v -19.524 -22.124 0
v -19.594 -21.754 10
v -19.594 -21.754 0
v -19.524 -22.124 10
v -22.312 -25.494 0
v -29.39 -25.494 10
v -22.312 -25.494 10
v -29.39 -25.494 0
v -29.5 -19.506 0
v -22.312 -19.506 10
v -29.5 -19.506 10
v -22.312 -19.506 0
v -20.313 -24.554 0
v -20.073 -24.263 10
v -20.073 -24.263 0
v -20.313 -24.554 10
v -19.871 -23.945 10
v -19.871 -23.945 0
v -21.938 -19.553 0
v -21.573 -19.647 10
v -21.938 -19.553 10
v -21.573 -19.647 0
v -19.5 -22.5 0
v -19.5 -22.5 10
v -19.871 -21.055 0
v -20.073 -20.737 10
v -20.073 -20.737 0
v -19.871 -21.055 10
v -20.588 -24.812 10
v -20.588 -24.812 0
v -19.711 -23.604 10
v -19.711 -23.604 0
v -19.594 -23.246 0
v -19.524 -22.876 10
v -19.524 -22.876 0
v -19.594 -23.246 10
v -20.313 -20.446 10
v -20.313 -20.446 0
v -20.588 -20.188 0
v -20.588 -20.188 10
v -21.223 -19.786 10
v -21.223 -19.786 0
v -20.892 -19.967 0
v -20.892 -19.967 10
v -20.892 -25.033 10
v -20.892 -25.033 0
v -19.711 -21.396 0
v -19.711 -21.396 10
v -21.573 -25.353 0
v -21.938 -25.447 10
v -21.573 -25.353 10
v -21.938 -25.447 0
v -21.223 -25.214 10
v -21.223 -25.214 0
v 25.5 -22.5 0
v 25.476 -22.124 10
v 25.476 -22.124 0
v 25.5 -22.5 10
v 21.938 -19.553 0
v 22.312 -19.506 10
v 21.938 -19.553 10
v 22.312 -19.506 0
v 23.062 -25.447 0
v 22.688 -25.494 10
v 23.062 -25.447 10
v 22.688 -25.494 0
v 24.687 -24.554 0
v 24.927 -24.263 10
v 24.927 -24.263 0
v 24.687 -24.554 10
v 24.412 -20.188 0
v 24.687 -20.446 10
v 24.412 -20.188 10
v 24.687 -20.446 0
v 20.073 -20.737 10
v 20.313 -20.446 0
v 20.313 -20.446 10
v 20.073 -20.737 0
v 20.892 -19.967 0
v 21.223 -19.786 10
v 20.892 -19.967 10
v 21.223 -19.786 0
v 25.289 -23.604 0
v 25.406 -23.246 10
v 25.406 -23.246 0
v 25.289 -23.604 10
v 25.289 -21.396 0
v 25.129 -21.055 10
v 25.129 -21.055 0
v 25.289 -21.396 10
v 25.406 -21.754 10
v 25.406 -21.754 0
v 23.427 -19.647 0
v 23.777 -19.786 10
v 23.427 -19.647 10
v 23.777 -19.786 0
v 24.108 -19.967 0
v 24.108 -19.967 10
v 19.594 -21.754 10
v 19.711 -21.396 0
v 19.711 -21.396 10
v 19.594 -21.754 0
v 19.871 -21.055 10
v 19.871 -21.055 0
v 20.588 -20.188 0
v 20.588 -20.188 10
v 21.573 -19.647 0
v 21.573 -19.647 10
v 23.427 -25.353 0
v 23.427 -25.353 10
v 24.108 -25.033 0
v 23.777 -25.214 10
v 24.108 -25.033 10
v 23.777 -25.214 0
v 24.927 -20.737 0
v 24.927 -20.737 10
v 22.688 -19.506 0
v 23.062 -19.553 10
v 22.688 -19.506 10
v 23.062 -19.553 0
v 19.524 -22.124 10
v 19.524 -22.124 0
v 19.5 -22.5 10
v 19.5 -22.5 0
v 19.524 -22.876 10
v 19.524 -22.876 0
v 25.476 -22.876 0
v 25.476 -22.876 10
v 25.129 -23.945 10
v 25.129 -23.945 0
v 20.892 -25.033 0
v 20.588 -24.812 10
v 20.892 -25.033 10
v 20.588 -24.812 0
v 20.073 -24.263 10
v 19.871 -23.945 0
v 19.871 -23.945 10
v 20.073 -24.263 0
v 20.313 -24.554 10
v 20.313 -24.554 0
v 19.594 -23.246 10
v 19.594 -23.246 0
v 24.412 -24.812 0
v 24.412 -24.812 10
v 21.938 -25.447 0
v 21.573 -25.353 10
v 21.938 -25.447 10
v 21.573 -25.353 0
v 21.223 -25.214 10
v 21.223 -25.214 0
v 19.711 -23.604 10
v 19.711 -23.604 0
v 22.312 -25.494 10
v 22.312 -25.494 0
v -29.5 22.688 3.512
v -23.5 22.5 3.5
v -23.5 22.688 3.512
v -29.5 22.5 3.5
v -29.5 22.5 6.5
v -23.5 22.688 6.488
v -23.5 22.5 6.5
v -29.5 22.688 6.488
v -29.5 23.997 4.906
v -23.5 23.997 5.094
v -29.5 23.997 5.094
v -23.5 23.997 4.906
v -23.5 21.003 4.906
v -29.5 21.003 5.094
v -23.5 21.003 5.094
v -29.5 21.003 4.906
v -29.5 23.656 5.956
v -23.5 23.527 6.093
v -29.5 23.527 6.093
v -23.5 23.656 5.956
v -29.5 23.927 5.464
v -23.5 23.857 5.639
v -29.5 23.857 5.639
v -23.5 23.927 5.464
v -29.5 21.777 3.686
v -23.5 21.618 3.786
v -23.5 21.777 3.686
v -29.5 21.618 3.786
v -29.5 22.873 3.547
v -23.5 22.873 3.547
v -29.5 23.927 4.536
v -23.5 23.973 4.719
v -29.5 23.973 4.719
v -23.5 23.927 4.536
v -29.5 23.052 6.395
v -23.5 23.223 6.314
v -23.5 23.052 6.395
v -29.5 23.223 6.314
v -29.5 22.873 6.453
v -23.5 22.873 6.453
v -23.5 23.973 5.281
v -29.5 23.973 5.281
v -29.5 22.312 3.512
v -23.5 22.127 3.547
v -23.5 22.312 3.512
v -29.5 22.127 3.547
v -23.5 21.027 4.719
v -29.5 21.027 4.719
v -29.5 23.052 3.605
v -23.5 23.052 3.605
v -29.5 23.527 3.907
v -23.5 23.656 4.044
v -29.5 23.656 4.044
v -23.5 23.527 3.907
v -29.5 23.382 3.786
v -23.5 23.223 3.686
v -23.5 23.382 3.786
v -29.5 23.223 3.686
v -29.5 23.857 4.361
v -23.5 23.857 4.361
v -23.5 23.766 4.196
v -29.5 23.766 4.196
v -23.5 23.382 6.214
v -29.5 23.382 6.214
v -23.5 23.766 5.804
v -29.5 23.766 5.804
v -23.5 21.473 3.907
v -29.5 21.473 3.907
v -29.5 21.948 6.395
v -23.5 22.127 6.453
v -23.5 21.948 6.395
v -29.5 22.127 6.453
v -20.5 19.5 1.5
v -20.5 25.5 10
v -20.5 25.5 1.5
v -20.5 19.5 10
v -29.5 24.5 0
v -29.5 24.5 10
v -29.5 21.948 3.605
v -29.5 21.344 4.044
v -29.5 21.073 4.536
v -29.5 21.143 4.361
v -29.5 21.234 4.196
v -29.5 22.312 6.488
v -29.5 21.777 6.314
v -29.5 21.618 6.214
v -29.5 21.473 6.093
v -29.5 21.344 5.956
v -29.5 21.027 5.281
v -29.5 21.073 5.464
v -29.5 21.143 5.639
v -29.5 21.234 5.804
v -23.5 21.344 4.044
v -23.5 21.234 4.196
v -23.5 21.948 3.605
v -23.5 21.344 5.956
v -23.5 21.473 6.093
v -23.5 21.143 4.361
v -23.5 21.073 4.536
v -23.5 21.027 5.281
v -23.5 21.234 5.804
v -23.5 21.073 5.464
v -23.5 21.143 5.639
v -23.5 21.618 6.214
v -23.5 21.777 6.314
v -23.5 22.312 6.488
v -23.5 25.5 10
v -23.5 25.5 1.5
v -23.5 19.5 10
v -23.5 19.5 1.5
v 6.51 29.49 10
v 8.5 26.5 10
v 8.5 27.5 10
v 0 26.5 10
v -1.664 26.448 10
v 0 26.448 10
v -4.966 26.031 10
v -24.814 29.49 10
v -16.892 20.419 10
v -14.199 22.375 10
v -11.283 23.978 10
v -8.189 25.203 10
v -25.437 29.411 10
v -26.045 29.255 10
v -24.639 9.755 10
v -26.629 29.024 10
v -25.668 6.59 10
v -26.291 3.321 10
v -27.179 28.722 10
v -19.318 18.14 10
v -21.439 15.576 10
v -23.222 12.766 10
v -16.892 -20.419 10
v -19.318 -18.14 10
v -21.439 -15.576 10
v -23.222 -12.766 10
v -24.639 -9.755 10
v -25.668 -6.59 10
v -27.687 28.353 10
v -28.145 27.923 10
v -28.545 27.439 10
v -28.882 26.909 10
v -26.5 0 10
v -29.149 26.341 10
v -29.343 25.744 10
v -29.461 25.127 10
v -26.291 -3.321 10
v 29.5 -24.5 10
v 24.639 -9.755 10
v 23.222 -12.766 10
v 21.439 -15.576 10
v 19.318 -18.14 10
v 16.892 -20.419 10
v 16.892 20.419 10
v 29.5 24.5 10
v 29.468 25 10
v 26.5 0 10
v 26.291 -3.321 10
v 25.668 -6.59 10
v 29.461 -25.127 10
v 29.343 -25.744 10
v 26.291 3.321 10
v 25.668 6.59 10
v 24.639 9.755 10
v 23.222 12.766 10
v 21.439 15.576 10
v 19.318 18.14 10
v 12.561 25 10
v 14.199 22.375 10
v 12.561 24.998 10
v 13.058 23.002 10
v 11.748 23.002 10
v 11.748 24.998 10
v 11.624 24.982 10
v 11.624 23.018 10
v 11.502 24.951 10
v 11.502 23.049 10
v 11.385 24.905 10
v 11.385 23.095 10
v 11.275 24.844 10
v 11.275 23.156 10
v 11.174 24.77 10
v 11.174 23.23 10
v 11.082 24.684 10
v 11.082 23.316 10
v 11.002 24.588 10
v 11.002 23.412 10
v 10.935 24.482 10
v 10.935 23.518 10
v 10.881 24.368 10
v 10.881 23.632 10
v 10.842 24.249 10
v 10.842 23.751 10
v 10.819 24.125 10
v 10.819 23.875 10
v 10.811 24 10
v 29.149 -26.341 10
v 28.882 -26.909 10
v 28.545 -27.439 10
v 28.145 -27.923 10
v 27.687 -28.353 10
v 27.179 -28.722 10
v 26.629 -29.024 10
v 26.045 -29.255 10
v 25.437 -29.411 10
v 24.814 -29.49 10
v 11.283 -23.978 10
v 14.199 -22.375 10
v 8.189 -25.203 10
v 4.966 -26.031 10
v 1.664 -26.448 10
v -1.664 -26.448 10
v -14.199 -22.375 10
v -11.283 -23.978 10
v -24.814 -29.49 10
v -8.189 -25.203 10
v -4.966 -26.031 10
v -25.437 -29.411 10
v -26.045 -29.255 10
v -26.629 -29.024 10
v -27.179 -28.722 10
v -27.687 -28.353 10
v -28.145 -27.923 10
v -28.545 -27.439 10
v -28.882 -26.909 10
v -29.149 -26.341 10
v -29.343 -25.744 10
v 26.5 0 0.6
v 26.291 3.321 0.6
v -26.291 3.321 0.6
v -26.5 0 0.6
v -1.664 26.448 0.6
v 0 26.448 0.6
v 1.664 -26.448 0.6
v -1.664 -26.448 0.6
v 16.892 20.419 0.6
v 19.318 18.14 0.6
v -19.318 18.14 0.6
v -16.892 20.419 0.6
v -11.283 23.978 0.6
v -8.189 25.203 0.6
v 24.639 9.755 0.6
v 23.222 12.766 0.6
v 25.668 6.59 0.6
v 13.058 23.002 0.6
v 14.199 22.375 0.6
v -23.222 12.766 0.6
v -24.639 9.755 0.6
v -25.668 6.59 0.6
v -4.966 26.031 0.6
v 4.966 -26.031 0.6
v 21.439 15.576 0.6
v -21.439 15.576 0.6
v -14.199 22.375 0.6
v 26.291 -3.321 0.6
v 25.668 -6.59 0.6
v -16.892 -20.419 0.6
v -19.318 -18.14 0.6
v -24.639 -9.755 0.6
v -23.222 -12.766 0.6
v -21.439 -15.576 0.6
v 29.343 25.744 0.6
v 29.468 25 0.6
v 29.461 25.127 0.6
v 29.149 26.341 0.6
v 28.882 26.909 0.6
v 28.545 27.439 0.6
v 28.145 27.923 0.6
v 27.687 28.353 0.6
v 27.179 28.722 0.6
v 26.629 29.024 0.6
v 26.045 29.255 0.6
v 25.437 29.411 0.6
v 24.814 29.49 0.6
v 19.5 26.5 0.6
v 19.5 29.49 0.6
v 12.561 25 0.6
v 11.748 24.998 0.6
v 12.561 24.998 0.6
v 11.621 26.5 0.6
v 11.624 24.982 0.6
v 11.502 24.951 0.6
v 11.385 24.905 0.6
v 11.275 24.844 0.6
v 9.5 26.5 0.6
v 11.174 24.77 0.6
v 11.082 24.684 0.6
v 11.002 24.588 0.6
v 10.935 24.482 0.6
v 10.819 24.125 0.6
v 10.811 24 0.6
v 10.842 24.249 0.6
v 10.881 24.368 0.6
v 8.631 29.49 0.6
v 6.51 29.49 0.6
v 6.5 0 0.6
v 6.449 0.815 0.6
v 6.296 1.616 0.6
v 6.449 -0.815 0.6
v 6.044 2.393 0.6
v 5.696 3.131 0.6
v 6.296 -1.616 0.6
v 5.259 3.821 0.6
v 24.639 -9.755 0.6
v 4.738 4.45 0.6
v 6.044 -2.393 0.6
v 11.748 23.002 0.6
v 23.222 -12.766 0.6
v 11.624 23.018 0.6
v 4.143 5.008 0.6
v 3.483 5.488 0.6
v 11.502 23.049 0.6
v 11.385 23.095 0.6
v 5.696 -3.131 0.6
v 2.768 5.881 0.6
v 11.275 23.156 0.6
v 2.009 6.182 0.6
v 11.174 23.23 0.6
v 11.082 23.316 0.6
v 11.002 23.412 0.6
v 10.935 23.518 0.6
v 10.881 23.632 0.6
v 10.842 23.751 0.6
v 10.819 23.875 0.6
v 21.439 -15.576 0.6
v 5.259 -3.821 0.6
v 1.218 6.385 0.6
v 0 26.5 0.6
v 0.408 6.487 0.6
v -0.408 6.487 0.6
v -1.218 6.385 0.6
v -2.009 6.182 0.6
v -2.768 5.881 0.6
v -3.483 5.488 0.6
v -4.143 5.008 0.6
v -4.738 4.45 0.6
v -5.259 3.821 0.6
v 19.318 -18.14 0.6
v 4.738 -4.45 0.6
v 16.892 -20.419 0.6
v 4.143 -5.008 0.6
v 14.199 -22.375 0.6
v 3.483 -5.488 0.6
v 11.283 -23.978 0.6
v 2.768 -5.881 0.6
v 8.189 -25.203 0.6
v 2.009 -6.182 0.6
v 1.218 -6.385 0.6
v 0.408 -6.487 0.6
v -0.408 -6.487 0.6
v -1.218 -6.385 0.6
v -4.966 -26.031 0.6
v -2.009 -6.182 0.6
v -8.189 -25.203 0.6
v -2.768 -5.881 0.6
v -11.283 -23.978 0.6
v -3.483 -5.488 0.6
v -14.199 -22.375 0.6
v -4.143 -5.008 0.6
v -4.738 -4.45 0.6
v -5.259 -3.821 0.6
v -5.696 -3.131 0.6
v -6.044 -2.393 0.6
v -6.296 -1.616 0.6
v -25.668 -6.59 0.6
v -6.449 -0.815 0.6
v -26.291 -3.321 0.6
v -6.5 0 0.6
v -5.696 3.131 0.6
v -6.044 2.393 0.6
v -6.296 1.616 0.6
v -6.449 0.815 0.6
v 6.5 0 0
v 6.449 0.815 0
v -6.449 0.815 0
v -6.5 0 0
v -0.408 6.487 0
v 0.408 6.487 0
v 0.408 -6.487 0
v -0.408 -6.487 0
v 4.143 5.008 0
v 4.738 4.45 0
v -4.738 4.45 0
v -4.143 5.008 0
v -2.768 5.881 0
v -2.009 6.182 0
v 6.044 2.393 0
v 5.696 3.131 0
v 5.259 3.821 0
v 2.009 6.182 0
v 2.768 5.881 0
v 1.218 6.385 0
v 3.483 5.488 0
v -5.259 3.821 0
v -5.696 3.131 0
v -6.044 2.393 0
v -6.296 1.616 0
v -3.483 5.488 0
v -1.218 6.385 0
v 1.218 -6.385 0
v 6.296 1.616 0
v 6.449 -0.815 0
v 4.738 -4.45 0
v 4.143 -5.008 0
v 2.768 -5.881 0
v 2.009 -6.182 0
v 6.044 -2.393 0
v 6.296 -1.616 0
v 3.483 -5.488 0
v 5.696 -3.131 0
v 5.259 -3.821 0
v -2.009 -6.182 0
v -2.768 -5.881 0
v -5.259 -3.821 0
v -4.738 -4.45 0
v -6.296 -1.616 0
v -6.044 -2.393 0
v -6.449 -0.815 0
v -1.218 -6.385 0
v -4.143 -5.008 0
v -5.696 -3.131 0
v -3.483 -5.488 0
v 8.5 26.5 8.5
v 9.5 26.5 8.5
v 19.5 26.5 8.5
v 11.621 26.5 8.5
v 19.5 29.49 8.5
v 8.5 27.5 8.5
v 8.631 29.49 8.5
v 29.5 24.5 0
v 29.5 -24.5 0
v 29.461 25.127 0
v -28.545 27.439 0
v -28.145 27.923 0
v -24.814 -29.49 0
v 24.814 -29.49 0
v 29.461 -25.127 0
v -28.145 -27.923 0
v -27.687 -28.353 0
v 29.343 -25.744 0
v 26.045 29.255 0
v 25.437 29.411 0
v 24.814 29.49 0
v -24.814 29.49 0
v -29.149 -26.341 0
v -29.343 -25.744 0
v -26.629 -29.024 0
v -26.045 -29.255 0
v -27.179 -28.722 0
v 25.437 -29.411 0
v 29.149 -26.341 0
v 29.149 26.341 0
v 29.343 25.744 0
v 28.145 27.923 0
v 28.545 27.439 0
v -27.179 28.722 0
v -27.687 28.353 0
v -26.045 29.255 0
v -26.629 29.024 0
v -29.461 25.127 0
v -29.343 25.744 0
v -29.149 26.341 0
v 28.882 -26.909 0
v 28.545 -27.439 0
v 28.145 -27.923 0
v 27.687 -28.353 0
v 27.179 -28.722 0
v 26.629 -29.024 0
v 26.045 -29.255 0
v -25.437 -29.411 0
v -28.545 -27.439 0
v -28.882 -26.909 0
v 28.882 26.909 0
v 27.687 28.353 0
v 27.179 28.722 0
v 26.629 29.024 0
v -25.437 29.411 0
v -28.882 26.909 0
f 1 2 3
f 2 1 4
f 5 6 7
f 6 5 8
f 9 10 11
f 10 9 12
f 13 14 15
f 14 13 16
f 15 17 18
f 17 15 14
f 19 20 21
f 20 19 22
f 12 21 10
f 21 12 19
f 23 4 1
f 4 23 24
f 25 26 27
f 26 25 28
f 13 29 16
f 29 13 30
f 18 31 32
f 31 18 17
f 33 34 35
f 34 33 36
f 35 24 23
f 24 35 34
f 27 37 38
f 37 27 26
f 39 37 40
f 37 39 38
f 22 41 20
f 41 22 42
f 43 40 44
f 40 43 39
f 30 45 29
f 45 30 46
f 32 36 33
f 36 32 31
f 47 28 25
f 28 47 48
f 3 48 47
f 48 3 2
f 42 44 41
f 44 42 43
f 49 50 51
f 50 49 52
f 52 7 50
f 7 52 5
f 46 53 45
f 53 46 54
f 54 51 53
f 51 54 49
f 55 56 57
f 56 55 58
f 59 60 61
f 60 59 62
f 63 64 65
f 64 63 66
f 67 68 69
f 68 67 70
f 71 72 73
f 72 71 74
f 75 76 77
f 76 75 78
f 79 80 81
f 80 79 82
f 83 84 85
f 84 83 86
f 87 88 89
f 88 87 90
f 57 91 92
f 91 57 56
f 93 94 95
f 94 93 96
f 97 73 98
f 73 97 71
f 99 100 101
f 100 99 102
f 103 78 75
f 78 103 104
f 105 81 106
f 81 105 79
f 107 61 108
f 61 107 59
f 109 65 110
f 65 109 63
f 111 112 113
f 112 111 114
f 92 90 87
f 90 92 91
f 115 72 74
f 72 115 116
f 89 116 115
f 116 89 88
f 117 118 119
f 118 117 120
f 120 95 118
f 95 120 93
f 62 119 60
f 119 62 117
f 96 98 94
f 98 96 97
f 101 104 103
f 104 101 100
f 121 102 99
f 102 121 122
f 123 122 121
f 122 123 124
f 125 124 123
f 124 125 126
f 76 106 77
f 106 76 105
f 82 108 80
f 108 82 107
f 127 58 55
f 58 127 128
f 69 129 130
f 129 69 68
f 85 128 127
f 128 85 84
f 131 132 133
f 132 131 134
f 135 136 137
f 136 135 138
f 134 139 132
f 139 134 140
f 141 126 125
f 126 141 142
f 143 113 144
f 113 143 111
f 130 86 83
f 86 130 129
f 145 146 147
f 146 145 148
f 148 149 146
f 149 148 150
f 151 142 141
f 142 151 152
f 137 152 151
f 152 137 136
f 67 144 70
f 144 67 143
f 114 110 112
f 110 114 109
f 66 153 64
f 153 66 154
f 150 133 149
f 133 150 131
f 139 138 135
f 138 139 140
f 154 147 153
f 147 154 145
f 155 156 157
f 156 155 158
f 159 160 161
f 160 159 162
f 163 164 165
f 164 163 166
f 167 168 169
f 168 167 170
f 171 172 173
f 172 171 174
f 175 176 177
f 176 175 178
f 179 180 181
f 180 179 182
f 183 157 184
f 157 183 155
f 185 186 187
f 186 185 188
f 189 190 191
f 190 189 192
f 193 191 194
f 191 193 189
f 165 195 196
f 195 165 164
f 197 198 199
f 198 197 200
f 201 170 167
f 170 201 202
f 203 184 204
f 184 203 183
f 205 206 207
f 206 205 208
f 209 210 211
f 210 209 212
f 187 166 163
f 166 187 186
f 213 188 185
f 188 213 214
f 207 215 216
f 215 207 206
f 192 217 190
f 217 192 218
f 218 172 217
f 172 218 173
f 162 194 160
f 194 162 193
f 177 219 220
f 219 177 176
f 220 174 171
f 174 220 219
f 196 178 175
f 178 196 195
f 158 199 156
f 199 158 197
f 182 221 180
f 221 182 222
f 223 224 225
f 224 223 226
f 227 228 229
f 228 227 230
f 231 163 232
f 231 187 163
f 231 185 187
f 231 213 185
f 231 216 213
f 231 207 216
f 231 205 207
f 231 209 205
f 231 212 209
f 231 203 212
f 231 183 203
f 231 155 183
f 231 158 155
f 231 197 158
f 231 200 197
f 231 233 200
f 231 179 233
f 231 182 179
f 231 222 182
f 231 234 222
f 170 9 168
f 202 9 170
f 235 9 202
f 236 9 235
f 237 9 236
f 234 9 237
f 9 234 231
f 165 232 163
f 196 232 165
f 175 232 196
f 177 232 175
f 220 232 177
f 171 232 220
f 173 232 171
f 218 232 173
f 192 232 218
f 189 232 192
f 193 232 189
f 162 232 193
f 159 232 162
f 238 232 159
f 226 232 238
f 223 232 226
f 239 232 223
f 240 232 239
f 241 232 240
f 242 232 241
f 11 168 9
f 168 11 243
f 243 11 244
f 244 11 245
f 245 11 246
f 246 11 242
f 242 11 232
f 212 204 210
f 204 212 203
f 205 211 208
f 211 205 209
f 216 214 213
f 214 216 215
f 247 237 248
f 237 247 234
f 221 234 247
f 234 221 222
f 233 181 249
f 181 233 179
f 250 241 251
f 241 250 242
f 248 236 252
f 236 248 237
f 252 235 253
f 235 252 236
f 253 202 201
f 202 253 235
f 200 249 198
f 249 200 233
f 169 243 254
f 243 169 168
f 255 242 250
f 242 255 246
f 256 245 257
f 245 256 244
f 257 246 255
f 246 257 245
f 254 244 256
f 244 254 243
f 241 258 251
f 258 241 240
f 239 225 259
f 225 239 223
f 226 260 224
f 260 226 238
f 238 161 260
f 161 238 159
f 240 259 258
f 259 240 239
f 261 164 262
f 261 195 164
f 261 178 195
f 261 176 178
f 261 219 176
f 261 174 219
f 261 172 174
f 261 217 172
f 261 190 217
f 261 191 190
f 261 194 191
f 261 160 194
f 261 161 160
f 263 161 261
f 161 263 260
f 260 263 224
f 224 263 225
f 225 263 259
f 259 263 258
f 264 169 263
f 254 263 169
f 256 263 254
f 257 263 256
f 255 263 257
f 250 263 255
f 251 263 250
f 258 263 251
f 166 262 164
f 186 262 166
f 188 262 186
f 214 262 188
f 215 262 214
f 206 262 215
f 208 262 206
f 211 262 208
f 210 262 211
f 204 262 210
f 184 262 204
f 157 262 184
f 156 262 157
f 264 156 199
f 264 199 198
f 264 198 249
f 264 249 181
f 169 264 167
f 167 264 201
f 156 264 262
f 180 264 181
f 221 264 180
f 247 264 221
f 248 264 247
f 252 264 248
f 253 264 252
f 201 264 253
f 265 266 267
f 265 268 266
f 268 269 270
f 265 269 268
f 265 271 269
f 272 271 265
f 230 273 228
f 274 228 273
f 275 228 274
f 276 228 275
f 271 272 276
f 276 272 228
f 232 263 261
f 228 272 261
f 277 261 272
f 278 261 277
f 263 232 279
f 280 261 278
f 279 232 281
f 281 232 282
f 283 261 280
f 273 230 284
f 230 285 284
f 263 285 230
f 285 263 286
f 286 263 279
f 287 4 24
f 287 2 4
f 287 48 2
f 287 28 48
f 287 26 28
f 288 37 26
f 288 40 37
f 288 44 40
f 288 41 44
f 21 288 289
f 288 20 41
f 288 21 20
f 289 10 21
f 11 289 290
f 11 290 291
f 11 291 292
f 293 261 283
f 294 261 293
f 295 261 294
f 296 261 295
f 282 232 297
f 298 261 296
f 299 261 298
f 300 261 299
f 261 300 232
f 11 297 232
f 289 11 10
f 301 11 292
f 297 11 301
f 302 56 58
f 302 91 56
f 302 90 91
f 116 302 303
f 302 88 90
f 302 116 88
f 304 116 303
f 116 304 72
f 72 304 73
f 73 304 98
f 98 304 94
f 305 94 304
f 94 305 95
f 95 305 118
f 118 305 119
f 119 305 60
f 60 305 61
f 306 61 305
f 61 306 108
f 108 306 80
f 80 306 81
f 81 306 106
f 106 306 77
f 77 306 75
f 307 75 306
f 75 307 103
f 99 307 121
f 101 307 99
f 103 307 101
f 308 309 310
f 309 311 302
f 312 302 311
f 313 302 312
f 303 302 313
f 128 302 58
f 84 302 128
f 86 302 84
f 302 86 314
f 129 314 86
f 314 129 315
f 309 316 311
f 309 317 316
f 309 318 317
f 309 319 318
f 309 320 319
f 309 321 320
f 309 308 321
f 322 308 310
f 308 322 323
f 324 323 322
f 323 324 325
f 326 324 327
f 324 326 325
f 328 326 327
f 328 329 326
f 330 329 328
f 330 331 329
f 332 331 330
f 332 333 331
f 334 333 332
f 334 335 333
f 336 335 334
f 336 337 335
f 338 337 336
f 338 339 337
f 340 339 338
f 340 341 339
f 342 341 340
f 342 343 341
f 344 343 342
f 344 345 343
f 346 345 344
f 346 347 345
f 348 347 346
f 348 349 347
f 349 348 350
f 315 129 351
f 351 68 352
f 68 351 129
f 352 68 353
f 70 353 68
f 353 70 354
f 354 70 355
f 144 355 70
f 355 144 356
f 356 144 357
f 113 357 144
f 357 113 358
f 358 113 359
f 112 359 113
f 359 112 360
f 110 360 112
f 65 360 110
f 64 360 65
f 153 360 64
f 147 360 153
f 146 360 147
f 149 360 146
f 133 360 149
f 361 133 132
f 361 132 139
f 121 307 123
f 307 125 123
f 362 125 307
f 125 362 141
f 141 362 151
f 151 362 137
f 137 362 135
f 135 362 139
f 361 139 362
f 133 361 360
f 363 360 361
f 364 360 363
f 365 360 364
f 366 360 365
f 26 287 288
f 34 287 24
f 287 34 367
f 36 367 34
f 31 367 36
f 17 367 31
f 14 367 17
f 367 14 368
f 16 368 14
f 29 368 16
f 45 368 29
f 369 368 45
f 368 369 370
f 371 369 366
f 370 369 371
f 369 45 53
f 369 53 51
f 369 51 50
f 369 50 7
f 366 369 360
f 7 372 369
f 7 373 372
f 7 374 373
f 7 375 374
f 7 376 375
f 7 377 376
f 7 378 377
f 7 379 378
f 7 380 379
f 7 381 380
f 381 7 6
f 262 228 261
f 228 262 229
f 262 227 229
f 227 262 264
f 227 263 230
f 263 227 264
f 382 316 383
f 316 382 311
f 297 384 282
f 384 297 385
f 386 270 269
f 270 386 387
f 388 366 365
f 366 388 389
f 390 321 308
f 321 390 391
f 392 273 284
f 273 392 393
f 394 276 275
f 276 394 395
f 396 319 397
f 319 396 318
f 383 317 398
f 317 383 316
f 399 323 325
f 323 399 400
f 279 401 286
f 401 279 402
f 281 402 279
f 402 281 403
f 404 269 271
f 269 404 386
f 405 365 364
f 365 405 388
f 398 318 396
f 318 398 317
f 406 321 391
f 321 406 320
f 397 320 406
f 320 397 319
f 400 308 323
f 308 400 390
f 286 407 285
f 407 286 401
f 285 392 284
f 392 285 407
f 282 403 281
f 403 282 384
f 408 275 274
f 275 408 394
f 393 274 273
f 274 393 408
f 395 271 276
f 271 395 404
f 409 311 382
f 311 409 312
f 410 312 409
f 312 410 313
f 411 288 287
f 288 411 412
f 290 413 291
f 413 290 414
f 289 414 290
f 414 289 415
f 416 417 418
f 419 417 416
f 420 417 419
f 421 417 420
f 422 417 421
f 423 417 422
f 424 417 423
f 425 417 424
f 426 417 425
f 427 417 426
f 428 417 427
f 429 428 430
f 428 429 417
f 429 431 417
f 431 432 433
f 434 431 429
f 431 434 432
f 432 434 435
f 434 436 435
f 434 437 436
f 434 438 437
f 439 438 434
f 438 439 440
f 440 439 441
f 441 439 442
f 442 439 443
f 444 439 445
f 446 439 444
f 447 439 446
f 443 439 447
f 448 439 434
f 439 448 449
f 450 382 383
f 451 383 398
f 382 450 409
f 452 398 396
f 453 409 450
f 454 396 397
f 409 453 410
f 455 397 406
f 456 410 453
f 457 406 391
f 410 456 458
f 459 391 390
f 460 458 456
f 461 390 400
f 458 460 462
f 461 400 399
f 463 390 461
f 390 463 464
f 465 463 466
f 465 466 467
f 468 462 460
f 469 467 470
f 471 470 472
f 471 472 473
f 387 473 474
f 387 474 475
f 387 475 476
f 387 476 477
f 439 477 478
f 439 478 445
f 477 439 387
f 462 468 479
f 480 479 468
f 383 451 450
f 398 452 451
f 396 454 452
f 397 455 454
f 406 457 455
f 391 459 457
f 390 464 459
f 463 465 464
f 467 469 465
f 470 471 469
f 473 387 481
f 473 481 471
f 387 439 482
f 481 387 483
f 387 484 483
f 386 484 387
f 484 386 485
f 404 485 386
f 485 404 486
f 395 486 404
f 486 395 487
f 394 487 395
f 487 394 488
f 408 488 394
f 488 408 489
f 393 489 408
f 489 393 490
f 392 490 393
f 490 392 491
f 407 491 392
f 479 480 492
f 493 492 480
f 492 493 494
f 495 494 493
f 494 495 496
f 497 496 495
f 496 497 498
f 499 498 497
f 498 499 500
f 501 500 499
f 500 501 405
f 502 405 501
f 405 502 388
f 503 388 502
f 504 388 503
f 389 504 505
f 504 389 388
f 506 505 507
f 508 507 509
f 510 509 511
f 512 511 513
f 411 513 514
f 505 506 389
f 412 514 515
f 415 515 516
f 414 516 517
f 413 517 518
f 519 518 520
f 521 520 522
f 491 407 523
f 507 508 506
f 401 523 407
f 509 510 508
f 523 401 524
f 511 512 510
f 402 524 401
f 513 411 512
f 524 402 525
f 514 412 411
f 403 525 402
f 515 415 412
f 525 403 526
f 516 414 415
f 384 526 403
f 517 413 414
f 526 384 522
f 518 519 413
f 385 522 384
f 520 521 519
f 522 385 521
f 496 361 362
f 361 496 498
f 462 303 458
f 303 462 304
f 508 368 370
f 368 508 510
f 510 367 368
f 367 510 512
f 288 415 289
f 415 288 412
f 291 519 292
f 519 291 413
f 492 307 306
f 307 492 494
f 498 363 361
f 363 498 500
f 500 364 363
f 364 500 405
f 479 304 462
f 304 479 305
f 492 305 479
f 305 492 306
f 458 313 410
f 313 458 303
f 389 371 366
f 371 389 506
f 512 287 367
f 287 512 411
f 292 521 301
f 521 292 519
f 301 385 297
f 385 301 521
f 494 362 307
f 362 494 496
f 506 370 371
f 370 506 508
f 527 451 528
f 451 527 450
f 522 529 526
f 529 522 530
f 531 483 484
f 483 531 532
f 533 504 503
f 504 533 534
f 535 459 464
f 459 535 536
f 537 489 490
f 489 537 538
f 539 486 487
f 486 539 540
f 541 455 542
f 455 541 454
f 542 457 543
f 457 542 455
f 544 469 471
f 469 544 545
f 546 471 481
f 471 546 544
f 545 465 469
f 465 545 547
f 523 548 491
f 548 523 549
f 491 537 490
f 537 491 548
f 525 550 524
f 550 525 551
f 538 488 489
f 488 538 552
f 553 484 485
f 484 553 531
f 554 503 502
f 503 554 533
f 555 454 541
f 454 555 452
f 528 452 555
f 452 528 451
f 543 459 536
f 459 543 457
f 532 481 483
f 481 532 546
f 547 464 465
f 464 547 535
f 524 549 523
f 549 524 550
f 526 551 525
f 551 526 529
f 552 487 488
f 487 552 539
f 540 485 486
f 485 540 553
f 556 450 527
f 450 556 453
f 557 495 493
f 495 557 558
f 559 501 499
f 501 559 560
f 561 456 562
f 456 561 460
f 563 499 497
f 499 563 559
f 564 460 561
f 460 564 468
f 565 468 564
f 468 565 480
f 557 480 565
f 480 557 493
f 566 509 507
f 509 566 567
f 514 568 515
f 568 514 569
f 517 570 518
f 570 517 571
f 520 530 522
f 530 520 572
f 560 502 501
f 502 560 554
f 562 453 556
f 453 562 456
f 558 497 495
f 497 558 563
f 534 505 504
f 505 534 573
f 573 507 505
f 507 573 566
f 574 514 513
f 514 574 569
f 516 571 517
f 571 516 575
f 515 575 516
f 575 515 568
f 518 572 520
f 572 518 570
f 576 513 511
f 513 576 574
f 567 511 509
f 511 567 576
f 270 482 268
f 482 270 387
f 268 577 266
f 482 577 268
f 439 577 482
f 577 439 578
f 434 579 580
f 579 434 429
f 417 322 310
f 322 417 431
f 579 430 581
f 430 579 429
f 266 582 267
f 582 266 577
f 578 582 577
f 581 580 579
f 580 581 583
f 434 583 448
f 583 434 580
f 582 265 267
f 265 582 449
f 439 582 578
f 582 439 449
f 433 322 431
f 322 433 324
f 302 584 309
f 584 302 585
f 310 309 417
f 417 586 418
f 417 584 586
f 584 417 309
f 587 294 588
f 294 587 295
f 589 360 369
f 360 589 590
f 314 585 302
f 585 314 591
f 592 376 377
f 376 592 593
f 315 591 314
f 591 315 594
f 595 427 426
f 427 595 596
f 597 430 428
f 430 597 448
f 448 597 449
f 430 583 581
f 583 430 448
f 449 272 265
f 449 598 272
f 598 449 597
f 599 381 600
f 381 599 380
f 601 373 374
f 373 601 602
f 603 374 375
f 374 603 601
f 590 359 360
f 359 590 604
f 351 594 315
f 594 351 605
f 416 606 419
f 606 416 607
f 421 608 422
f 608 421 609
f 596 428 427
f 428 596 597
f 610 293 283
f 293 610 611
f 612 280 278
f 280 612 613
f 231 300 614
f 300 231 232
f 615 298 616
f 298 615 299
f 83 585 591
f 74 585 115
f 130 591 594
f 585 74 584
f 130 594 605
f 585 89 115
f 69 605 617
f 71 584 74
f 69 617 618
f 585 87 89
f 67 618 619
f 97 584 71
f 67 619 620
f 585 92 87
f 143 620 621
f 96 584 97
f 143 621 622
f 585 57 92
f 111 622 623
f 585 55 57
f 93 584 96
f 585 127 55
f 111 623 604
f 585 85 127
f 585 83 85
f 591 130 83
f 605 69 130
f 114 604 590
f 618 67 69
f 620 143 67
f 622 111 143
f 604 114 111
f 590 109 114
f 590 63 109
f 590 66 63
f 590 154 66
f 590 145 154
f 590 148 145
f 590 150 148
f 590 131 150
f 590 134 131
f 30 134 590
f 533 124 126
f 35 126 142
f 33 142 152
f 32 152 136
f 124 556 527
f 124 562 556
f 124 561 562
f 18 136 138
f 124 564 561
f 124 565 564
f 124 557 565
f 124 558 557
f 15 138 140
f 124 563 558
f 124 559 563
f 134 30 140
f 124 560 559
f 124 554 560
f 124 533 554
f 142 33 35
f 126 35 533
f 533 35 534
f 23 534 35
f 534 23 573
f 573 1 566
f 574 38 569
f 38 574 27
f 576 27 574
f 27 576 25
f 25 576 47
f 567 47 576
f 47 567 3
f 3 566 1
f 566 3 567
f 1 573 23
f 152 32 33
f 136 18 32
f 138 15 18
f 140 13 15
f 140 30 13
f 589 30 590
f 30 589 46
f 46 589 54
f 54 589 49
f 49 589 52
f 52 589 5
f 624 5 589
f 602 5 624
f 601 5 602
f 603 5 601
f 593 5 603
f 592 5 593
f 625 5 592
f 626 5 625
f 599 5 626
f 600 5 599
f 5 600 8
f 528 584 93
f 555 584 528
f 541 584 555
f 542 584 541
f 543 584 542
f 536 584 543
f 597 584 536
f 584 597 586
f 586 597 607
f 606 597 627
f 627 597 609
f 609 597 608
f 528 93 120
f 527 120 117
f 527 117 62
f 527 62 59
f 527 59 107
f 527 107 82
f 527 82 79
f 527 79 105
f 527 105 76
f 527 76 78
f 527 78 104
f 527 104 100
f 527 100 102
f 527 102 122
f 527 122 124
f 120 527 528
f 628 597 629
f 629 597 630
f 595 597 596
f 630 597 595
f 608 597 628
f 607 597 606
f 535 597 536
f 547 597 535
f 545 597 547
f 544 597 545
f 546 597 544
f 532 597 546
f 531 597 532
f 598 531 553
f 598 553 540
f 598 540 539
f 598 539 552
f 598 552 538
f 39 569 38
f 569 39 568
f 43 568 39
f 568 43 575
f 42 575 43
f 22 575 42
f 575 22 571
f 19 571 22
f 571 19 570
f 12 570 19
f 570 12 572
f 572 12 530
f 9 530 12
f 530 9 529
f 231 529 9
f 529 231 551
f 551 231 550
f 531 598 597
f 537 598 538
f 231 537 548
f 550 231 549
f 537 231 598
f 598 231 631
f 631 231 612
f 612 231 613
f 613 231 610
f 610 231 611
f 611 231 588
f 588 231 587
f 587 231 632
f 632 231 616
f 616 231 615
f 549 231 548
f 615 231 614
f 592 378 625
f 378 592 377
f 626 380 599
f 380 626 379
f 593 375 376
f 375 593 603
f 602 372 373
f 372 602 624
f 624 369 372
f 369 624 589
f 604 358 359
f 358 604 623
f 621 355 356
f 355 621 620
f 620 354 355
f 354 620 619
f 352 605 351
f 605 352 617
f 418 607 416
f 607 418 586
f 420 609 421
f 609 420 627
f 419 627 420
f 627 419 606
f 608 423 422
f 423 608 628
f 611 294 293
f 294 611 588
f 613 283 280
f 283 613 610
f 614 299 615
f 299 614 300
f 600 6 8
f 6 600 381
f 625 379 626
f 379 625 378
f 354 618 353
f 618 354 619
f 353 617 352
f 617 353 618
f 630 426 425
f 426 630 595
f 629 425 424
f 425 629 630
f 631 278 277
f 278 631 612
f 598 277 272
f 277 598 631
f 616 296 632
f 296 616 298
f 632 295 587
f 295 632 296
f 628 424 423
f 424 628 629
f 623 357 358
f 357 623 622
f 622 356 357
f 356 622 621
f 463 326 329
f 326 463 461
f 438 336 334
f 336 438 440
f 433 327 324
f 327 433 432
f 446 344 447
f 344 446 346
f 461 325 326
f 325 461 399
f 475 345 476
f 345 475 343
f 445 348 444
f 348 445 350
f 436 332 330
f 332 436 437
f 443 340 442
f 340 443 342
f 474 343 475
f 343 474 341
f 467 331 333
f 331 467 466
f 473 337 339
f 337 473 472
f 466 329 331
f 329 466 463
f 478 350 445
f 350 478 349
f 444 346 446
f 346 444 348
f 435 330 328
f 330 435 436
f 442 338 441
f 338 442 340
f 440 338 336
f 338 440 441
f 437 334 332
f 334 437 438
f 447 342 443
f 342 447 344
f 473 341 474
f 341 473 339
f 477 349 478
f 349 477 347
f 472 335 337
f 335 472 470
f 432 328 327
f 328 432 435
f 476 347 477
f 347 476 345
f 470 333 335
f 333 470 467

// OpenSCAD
$fn = 50;


union() {
	difference() {
		union() {
			translate(v = [0, 0, 0]) {
				rotate(a = [0, 0, 0]) {
					hull() {
						translate(v = [-24.5000000000, 24.5000000000, 0]) {
							rotate(a = [0, 0, 0]) {
								translate(v = [0, 0, 0]) {
									rotate(a = [0, 0, 0]) {
										cylinder(h = 10, r = 5);
									}
								}
							}
						}
						translate(v = [24.5000000000, 24.5000000000, 0]) {
							rotate(a = [0, 0, 0]) {
								translate(v = [0, 0, 0]) {
									rotate(a = [0, 0, 0]) {
										cylinder(h = 10, r = 5);
									}
								}
							}
						}
						translate(v = [-24.5000000000, -24.5000000000, 0]) {
							rotate(a = [0, 0, 0]) {
								translate(v = [0, 0, 0]) {
									rotate(a = [0, 0, 0]) {
										cylinder(h = 10, r = 5);
									}
								}
							}
						}
						translate(v = [24.5000000000, -24.5000000000, 0]) {
							rotate(a = [0, 0, 0]) {
								translate(v = [0, 0, 0]) {
									rotate(a = [0, 0, 0]) {
										cylinder(h = 10, r = 5);
									}
								}
							}
						}
					}
				}
			}
		}
		union() {
			translate(v = [-30.0000000000, -22.5000000000, -125]) {
				rotate(a = [0, 0, 0]) {
					hull() {
						translate(v = [7.5000000000, 0, 0]) {
							rotate(a = [0, 0, 0]) {
								translate(v = [0, 0, 0]) {
									rotate(a = [0, 0, 0]) {
										cylinder(h = 250, r = 3.0000000000);
									}
								}
							}
						}
						translate(v = [-7.5000000000, 0, 0]) {
							rotate(a = [0, 0, 0]) {
								translate(v = [0, 0, 0]) {
									rotate(a = [0, 0, 0]) {
										cylinder(h = 250, r = 3.0000000000);
									}
								}
							}
						}
					}
				}
			}
			translate(v = [22.5000000000, -22.5000000000, -125.0000000000]) {
				rotate(a = [0, 0, 0]) {
					cylinder(h = 250, r = 3.0000000000);
				}
			}
			translate(v = [-29.5000000000, 22.5000000000, 5.0000000000]) {
				rotate(a = [0, 90, 0]) {
					cylinder(h = 9, r = 1.5000000000);
				}
			}
			translate(v = [-23.5000000000, 19.5000000000, 1.5000000000]) {
				rotate(a = [0, 0, 0]) {
					cube(size = [3, 6, 8.5000000000]);
				}
			}
			translate(v = [0, 0, 0.6000000000]) {
				rotate(a = [0, 0, 0]) {
					cylinder(h = 12.4000000000, r = 26.5000000000);
				}
			}
			translate(v = [0, 0, -5.0000000000]) {
				rotate(a = [0, 0, 0]) {
					cylinder(h = 10, r = 6.5000000000);
				}
			}
			translate(v = [0.0000000000, 25.0000000000, 0.6000000000]) {
				rotate(a = [0, 0, 0]) {
					cube(size = [29.5000000000, 1.5000000000, 12.4000000000]);
				}
			}
			translate(v = [19.5000000000, 25.0000000000, 0.6000000000]) {
				rotate(a = [0, 0, 0]) {
					cube(size = [10, 4.5000000000, 12.4000000000]);
				}
			}
			#translate(v = [8.5000000000, 25.0000000000, 8.5000000000]) {
				rotate(a = [0, 0, 0]) {
					cube(size = [21, 4.5000000000, 1.5000000000]);
				}
			}
			translate(v = [5.7500000000, 30.2500000000, 0.6000000000]) {
				rotate(a = [0, 0, -45]) {
					cube(size = [7.5000000000, 1.5000000000, 12.4000000000]);
				}
			}
			translate(v = [5.0610000000, 23.0000000000, 0.6000000000]) {
				rotate(a = [0, 0, 0]) {
					cube(size = [7.5000000000, 2, 9.4000000000]);
				}
			}
		}
	}
	union() {
		translate(v = [14.3110000000, 24.0000000000, 0]) {
			rotate(a = [0, 0, 0]) {
				hull() {
					translate(v = [2.5000000000, 0, 0]) {
						rotate(a = [0, 0, 0]) {
							translate(v = [0, 0, 0]) {
								rotate(a = [0, 0, 0]) {
									cylinder(h = 10, r = 1.0000000000);
								}
							}
						}
					}
					translate(v = [-2.5000000000, 0, 0]) {
						rotate(a = [0, 0, 0]) {
							translate(v = [0, 0, 0]) {
								rotate(a = [0, 0, 0]) {
									cylinder(h = 10, r = 1.0000000000);
								}
							}
						}
					}
				}
			}
		}
	}
}
